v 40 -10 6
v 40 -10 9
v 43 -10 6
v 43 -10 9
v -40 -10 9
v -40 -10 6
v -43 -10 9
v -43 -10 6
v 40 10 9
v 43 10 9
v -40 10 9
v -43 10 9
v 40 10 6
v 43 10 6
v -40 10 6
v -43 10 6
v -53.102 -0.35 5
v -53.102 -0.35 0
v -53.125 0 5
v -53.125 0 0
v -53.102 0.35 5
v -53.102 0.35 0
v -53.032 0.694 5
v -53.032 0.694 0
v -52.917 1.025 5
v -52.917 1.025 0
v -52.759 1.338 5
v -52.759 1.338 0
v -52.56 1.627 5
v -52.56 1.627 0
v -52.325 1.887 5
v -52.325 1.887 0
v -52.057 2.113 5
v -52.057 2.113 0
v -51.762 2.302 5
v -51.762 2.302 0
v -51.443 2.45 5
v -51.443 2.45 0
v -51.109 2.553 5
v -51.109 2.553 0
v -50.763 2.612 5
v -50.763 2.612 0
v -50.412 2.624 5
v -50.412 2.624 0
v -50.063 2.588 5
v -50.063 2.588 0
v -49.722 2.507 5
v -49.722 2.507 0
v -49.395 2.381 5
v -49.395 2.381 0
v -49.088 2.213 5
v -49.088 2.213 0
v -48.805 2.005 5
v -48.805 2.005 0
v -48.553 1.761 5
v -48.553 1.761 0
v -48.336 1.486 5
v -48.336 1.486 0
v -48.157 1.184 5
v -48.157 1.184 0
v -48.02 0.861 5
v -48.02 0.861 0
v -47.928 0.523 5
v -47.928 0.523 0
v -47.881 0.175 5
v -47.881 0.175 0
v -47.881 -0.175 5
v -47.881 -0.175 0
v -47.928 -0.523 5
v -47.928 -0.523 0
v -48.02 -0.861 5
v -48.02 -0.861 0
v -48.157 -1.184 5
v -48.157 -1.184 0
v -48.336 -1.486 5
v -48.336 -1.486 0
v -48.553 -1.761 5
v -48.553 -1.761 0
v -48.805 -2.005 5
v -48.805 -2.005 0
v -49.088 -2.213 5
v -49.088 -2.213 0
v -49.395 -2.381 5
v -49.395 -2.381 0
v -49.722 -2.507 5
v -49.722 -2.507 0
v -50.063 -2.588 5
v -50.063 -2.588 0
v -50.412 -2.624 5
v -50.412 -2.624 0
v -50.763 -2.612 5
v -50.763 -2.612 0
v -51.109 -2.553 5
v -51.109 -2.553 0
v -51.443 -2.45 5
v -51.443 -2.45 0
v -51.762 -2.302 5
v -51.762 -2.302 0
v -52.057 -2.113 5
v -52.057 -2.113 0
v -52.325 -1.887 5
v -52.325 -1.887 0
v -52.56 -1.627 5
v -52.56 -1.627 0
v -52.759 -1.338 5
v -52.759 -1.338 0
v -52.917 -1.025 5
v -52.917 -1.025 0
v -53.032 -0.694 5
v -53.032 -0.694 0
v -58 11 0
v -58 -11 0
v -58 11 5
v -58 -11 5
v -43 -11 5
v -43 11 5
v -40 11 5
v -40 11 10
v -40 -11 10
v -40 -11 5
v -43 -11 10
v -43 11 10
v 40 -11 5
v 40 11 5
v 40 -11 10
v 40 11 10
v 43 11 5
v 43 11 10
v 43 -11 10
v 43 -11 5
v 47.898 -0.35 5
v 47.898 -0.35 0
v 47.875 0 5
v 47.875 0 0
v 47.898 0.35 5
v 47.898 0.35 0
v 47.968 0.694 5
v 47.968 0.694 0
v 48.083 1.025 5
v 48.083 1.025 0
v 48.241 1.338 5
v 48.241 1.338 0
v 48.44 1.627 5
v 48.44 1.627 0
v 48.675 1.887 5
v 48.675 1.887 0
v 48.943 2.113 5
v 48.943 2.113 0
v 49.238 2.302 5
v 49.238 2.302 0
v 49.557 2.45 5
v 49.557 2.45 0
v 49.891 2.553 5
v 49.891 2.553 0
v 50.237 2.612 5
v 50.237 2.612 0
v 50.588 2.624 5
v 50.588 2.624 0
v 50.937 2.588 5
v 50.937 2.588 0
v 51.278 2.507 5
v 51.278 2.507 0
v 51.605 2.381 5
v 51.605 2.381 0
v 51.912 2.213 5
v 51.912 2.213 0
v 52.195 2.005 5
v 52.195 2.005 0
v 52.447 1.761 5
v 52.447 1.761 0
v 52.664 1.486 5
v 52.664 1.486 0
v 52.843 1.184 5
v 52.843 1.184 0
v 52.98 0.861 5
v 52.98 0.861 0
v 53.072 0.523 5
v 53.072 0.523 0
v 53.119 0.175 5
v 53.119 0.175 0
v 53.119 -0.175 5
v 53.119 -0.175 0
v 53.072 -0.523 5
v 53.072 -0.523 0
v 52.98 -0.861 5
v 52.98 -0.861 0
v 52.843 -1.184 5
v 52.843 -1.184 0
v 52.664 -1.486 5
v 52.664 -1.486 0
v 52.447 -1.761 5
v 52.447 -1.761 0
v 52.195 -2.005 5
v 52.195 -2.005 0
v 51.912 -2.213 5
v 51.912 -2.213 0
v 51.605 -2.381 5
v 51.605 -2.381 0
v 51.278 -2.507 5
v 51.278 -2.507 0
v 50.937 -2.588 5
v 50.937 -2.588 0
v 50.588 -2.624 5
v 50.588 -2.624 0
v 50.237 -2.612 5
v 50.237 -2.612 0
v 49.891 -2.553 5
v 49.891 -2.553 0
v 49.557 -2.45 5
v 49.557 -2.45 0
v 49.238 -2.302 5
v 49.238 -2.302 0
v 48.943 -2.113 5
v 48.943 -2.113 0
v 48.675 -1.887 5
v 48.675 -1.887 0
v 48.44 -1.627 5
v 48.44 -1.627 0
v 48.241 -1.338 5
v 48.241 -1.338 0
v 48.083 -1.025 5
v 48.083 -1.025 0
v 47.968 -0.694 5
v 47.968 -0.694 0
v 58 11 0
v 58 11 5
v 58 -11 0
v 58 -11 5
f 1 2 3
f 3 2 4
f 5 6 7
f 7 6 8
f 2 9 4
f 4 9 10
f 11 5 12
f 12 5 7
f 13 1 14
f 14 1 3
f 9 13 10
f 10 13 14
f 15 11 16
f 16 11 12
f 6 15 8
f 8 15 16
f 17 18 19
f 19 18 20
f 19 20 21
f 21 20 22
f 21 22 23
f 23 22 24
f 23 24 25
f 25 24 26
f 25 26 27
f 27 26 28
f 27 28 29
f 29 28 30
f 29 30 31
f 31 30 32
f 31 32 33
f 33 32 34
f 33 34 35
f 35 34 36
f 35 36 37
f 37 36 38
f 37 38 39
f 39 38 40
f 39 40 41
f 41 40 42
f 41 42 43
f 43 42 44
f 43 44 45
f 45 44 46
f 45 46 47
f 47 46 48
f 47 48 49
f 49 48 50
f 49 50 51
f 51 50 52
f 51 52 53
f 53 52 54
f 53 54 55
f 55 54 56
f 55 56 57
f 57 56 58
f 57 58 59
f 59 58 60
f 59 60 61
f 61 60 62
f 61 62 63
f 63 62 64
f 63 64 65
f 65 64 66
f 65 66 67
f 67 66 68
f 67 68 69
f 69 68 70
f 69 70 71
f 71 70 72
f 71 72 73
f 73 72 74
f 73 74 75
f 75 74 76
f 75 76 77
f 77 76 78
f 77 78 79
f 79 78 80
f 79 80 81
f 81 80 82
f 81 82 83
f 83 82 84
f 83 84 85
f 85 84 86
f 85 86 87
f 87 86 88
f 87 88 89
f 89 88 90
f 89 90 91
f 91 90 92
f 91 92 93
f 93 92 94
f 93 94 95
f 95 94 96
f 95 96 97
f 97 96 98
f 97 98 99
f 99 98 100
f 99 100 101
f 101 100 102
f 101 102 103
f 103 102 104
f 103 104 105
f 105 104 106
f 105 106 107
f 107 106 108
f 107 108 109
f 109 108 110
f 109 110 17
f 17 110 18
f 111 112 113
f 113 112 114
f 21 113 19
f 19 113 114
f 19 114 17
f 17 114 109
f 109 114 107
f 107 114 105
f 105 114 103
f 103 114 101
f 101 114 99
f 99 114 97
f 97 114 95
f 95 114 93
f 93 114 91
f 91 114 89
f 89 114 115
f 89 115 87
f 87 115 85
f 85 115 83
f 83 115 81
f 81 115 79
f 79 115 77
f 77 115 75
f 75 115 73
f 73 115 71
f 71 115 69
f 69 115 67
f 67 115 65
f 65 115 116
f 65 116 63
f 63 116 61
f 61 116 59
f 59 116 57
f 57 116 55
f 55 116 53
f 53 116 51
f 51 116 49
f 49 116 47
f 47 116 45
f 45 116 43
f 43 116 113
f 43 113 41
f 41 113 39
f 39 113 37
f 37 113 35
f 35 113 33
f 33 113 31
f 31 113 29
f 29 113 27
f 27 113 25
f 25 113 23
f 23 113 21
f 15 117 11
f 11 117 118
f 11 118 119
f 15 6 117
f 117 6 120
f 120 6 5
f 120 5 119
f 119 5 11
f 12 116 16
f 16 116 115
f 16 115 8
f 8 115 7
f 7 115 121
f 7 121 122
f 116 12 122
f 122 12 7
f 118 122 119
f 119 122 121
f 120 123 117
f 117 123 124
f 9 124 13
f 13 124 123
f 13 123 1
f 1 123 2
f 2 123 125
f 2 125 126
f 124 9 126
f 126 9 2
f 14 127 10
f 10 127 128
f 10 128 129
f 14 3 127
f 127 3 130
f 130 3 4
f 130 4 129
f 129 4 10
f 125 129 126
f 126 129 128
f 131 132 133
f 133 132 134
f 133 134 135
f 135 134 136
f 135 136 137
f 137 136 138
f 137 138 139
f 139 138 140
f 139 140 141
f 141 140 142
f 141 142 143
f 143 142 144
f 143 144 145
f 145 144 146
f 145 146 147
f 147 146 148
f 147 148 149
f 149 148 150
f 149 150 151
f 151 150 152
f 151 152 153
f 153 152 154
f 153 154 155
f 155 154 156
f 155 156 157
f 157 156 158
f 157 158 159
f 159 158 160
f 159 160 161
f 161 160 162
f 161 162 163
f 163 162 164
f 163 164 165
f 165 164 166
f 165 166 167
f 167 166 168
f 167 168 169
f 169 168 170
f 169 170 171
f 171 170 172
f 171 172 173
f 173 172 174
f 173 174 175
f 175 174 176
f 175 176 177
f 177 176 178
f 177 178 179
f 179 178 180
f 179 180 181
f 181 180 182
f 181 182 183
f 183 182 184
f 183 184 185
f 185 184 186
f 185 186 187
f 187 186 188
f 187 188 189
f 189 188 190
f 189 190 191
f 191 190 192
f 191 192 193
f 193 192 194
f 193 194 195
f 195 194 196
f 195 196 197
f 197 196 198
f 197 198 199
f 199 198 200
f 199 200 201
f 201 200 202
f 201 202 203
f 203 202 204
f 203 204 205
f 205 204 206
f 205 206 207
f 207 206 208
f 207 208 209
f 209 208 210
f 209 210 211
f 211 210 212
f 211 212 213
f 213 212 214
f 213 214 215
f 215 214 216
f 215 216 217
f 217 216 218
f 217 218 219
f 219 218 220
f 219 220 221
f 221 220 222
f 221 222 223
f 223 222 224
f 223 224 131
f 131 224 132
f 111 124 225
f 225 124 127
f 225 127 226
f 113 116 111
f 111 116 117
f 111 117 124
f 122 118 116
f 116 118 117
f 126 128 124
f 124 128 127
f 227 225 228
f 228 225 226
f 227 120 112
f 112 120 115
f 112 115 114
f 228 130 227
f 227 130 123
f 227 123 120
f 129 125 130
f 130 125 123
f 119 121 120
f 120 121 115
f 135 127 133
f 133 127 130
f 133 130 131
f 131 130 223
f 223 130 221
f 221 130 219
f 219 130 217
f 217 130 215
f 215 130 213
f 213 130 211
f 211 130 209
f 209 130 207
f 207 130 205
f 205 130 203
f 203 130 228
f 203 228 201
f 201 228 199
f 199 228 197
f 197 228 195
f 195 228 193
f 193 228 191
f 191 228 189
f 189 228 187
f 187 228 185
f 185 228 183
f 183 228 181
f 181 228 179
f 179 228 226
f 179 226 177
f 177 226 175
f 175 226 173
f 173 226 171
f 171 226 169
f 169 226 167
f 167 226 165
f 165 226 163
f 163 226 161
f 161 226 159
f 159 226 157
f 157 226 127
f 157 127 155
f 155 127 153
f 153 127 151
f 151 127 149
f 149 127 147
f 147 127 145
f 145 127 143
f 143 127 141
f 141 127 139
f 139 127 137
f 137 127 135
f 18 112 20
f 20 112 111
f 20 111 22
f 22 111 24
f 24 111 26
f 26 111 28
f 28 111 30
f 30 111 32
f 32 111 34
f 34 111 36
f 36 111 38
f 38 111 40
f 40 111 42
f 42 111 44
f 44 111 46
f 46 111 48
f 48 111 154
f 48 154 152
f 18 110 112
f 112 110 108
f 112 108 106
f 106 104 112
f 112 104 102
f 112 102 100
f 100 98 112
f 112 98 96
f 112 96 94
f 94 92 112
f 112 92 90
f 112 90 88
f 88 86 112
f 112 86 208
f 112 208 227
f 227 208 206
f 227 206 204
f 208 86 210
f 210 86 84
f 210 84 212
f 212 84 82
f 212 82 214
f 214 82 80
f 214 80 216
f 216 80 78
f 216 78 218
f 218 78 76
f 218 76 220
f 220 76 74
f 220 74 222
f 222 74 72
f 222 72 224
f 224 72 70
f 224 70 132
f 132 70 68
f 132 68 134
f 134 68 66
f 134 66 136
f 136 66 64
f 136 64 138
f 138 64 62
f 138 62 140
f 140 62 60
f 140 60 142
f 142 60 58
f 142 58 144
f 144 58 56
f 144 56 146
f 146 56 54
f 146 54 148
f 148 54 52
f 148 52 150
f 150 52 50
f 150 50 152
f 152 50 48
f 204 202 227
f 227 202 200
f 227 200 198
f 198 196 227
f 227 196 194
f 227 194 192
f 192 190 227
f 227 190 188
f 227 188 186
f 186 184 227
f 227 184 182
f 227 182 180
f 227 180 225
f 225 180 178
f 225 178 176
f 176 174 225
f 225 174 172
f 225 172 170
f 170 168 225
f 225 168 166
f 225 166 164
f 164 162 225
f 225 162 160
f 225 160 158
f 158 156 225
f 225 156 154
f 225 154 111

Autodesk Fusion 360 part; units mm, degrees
sketch "Sketch1" plane through (0, 0, 0) normal (0, 0, 1) x (1, 0, 0)
  line L0 (40, -11) -> (-40, -11)
  line L1 (-40, -11) -> (-40, 11)
  line L2 (-40, 11) -> (40, 11)
  line L3 (40, 11) -> (40, -11)
  line L4 (40, -11) -> (-40, 11) construction
  line L5 (-40, -11) -> (40, 11) construction
  line L6 (-40, 11) -> (-43, 11)
  line L7 (-43, 11) -> (-43, -11)
  line L8 (-43, -11) -> (-40, -11)
  line L9 (-40, -11) -> (-40, 11)
  line L10 (40, 11) -> (43, 11)
  line L11 (43, 11) -> (43, -11)
  line L12 (43, -11) -> (40, -11)
  line L13 (40, -11) -> (40, 11)
  line L14 (43, 11) -> (58, 11)
  line L15 (58, 11) -> (58, -11)
  line L16 (58, -11) -> (43, -11)
  line L17 (43, -11) -> (43, 11)
  line L18 (-43, 11) -> (-58, 11)
  line L19 (-58, 11) -> (-58, -11)
  line L20 (-58, -11) -> (-43, -11)
  line L21 (-43, -11) -> (-43, 11)
  circle A0 centre (-50.5, 0) radius 2.625
  circle A1 centre (50.5, 0) radius 2.625
  dimension "d1" = 80
  dimension "d2" = 22
  dimension "d3" = 3
  dimension "d4" = 22
  dimension "d5" = 3
  dimension "d6" = 15
  dimension "d7" = 22
  dimension "d8" = 15
  dimension "d9" = 22
  dimension "d10" = 5.25
  dimension "d11" = 5.25
  dimension "d19" = 22
extrude "Extrude1" add sketch "Sketch1" along normal blind 5 contours L0 L1 L2 L3 L9 L13 | L11 L14 L15 L16 L17 | L7 L18 L19 L20 L21 makes body 1 at (50.5654, -8.2059, 0) makes body 2 at (13.3333, -3.6667, 0) makes body 3 at (-50.4346, -8.2059, 0)
extrude "Extrude2" add sketch "Sketch1" along normal blind 10 contours L3 L10 L11 L12 L13 L17 | L1 L6 L7 L8 L9 L21 bodies 1 2 3
sketch "Sketch2" plane through (43, 0, 0) normal (1, 0, 0) x (0, 1, 0)
  line L0 (-11, 5) -> (11, 5)
  line L1 (11, 5) -> (11, 10)
  line L2 (11, 10) -> (-11, 10)
  line L3 (-11, 10) -> (-11, 5)
  line L4 (-11, 10) -> (11, 10)
  line L5 (11, 10) -> (11, 5)
  line L6 (11, 5) -> (-11, 5)
  line L7 (-11, 5) -> (-11, 10)
  line L8 (10, 6) -> (-10, 6)
  line L9 (-10, 6) -> (-10, 9)
  line L10 (-10, 9) -> (10, 9)
  line L11 (10, 9) -> (10, 6)
  dimension "d16" = 1
extrude "Extrude3" cut sketch "Sketch2" against normal up to surface (86 mm away) contours L8 L9 L10 L11 bodies 1
equation "d4 = d2"
equation "d7 = d2"
equation "d9 = d2"
equation "d19 = d2"
